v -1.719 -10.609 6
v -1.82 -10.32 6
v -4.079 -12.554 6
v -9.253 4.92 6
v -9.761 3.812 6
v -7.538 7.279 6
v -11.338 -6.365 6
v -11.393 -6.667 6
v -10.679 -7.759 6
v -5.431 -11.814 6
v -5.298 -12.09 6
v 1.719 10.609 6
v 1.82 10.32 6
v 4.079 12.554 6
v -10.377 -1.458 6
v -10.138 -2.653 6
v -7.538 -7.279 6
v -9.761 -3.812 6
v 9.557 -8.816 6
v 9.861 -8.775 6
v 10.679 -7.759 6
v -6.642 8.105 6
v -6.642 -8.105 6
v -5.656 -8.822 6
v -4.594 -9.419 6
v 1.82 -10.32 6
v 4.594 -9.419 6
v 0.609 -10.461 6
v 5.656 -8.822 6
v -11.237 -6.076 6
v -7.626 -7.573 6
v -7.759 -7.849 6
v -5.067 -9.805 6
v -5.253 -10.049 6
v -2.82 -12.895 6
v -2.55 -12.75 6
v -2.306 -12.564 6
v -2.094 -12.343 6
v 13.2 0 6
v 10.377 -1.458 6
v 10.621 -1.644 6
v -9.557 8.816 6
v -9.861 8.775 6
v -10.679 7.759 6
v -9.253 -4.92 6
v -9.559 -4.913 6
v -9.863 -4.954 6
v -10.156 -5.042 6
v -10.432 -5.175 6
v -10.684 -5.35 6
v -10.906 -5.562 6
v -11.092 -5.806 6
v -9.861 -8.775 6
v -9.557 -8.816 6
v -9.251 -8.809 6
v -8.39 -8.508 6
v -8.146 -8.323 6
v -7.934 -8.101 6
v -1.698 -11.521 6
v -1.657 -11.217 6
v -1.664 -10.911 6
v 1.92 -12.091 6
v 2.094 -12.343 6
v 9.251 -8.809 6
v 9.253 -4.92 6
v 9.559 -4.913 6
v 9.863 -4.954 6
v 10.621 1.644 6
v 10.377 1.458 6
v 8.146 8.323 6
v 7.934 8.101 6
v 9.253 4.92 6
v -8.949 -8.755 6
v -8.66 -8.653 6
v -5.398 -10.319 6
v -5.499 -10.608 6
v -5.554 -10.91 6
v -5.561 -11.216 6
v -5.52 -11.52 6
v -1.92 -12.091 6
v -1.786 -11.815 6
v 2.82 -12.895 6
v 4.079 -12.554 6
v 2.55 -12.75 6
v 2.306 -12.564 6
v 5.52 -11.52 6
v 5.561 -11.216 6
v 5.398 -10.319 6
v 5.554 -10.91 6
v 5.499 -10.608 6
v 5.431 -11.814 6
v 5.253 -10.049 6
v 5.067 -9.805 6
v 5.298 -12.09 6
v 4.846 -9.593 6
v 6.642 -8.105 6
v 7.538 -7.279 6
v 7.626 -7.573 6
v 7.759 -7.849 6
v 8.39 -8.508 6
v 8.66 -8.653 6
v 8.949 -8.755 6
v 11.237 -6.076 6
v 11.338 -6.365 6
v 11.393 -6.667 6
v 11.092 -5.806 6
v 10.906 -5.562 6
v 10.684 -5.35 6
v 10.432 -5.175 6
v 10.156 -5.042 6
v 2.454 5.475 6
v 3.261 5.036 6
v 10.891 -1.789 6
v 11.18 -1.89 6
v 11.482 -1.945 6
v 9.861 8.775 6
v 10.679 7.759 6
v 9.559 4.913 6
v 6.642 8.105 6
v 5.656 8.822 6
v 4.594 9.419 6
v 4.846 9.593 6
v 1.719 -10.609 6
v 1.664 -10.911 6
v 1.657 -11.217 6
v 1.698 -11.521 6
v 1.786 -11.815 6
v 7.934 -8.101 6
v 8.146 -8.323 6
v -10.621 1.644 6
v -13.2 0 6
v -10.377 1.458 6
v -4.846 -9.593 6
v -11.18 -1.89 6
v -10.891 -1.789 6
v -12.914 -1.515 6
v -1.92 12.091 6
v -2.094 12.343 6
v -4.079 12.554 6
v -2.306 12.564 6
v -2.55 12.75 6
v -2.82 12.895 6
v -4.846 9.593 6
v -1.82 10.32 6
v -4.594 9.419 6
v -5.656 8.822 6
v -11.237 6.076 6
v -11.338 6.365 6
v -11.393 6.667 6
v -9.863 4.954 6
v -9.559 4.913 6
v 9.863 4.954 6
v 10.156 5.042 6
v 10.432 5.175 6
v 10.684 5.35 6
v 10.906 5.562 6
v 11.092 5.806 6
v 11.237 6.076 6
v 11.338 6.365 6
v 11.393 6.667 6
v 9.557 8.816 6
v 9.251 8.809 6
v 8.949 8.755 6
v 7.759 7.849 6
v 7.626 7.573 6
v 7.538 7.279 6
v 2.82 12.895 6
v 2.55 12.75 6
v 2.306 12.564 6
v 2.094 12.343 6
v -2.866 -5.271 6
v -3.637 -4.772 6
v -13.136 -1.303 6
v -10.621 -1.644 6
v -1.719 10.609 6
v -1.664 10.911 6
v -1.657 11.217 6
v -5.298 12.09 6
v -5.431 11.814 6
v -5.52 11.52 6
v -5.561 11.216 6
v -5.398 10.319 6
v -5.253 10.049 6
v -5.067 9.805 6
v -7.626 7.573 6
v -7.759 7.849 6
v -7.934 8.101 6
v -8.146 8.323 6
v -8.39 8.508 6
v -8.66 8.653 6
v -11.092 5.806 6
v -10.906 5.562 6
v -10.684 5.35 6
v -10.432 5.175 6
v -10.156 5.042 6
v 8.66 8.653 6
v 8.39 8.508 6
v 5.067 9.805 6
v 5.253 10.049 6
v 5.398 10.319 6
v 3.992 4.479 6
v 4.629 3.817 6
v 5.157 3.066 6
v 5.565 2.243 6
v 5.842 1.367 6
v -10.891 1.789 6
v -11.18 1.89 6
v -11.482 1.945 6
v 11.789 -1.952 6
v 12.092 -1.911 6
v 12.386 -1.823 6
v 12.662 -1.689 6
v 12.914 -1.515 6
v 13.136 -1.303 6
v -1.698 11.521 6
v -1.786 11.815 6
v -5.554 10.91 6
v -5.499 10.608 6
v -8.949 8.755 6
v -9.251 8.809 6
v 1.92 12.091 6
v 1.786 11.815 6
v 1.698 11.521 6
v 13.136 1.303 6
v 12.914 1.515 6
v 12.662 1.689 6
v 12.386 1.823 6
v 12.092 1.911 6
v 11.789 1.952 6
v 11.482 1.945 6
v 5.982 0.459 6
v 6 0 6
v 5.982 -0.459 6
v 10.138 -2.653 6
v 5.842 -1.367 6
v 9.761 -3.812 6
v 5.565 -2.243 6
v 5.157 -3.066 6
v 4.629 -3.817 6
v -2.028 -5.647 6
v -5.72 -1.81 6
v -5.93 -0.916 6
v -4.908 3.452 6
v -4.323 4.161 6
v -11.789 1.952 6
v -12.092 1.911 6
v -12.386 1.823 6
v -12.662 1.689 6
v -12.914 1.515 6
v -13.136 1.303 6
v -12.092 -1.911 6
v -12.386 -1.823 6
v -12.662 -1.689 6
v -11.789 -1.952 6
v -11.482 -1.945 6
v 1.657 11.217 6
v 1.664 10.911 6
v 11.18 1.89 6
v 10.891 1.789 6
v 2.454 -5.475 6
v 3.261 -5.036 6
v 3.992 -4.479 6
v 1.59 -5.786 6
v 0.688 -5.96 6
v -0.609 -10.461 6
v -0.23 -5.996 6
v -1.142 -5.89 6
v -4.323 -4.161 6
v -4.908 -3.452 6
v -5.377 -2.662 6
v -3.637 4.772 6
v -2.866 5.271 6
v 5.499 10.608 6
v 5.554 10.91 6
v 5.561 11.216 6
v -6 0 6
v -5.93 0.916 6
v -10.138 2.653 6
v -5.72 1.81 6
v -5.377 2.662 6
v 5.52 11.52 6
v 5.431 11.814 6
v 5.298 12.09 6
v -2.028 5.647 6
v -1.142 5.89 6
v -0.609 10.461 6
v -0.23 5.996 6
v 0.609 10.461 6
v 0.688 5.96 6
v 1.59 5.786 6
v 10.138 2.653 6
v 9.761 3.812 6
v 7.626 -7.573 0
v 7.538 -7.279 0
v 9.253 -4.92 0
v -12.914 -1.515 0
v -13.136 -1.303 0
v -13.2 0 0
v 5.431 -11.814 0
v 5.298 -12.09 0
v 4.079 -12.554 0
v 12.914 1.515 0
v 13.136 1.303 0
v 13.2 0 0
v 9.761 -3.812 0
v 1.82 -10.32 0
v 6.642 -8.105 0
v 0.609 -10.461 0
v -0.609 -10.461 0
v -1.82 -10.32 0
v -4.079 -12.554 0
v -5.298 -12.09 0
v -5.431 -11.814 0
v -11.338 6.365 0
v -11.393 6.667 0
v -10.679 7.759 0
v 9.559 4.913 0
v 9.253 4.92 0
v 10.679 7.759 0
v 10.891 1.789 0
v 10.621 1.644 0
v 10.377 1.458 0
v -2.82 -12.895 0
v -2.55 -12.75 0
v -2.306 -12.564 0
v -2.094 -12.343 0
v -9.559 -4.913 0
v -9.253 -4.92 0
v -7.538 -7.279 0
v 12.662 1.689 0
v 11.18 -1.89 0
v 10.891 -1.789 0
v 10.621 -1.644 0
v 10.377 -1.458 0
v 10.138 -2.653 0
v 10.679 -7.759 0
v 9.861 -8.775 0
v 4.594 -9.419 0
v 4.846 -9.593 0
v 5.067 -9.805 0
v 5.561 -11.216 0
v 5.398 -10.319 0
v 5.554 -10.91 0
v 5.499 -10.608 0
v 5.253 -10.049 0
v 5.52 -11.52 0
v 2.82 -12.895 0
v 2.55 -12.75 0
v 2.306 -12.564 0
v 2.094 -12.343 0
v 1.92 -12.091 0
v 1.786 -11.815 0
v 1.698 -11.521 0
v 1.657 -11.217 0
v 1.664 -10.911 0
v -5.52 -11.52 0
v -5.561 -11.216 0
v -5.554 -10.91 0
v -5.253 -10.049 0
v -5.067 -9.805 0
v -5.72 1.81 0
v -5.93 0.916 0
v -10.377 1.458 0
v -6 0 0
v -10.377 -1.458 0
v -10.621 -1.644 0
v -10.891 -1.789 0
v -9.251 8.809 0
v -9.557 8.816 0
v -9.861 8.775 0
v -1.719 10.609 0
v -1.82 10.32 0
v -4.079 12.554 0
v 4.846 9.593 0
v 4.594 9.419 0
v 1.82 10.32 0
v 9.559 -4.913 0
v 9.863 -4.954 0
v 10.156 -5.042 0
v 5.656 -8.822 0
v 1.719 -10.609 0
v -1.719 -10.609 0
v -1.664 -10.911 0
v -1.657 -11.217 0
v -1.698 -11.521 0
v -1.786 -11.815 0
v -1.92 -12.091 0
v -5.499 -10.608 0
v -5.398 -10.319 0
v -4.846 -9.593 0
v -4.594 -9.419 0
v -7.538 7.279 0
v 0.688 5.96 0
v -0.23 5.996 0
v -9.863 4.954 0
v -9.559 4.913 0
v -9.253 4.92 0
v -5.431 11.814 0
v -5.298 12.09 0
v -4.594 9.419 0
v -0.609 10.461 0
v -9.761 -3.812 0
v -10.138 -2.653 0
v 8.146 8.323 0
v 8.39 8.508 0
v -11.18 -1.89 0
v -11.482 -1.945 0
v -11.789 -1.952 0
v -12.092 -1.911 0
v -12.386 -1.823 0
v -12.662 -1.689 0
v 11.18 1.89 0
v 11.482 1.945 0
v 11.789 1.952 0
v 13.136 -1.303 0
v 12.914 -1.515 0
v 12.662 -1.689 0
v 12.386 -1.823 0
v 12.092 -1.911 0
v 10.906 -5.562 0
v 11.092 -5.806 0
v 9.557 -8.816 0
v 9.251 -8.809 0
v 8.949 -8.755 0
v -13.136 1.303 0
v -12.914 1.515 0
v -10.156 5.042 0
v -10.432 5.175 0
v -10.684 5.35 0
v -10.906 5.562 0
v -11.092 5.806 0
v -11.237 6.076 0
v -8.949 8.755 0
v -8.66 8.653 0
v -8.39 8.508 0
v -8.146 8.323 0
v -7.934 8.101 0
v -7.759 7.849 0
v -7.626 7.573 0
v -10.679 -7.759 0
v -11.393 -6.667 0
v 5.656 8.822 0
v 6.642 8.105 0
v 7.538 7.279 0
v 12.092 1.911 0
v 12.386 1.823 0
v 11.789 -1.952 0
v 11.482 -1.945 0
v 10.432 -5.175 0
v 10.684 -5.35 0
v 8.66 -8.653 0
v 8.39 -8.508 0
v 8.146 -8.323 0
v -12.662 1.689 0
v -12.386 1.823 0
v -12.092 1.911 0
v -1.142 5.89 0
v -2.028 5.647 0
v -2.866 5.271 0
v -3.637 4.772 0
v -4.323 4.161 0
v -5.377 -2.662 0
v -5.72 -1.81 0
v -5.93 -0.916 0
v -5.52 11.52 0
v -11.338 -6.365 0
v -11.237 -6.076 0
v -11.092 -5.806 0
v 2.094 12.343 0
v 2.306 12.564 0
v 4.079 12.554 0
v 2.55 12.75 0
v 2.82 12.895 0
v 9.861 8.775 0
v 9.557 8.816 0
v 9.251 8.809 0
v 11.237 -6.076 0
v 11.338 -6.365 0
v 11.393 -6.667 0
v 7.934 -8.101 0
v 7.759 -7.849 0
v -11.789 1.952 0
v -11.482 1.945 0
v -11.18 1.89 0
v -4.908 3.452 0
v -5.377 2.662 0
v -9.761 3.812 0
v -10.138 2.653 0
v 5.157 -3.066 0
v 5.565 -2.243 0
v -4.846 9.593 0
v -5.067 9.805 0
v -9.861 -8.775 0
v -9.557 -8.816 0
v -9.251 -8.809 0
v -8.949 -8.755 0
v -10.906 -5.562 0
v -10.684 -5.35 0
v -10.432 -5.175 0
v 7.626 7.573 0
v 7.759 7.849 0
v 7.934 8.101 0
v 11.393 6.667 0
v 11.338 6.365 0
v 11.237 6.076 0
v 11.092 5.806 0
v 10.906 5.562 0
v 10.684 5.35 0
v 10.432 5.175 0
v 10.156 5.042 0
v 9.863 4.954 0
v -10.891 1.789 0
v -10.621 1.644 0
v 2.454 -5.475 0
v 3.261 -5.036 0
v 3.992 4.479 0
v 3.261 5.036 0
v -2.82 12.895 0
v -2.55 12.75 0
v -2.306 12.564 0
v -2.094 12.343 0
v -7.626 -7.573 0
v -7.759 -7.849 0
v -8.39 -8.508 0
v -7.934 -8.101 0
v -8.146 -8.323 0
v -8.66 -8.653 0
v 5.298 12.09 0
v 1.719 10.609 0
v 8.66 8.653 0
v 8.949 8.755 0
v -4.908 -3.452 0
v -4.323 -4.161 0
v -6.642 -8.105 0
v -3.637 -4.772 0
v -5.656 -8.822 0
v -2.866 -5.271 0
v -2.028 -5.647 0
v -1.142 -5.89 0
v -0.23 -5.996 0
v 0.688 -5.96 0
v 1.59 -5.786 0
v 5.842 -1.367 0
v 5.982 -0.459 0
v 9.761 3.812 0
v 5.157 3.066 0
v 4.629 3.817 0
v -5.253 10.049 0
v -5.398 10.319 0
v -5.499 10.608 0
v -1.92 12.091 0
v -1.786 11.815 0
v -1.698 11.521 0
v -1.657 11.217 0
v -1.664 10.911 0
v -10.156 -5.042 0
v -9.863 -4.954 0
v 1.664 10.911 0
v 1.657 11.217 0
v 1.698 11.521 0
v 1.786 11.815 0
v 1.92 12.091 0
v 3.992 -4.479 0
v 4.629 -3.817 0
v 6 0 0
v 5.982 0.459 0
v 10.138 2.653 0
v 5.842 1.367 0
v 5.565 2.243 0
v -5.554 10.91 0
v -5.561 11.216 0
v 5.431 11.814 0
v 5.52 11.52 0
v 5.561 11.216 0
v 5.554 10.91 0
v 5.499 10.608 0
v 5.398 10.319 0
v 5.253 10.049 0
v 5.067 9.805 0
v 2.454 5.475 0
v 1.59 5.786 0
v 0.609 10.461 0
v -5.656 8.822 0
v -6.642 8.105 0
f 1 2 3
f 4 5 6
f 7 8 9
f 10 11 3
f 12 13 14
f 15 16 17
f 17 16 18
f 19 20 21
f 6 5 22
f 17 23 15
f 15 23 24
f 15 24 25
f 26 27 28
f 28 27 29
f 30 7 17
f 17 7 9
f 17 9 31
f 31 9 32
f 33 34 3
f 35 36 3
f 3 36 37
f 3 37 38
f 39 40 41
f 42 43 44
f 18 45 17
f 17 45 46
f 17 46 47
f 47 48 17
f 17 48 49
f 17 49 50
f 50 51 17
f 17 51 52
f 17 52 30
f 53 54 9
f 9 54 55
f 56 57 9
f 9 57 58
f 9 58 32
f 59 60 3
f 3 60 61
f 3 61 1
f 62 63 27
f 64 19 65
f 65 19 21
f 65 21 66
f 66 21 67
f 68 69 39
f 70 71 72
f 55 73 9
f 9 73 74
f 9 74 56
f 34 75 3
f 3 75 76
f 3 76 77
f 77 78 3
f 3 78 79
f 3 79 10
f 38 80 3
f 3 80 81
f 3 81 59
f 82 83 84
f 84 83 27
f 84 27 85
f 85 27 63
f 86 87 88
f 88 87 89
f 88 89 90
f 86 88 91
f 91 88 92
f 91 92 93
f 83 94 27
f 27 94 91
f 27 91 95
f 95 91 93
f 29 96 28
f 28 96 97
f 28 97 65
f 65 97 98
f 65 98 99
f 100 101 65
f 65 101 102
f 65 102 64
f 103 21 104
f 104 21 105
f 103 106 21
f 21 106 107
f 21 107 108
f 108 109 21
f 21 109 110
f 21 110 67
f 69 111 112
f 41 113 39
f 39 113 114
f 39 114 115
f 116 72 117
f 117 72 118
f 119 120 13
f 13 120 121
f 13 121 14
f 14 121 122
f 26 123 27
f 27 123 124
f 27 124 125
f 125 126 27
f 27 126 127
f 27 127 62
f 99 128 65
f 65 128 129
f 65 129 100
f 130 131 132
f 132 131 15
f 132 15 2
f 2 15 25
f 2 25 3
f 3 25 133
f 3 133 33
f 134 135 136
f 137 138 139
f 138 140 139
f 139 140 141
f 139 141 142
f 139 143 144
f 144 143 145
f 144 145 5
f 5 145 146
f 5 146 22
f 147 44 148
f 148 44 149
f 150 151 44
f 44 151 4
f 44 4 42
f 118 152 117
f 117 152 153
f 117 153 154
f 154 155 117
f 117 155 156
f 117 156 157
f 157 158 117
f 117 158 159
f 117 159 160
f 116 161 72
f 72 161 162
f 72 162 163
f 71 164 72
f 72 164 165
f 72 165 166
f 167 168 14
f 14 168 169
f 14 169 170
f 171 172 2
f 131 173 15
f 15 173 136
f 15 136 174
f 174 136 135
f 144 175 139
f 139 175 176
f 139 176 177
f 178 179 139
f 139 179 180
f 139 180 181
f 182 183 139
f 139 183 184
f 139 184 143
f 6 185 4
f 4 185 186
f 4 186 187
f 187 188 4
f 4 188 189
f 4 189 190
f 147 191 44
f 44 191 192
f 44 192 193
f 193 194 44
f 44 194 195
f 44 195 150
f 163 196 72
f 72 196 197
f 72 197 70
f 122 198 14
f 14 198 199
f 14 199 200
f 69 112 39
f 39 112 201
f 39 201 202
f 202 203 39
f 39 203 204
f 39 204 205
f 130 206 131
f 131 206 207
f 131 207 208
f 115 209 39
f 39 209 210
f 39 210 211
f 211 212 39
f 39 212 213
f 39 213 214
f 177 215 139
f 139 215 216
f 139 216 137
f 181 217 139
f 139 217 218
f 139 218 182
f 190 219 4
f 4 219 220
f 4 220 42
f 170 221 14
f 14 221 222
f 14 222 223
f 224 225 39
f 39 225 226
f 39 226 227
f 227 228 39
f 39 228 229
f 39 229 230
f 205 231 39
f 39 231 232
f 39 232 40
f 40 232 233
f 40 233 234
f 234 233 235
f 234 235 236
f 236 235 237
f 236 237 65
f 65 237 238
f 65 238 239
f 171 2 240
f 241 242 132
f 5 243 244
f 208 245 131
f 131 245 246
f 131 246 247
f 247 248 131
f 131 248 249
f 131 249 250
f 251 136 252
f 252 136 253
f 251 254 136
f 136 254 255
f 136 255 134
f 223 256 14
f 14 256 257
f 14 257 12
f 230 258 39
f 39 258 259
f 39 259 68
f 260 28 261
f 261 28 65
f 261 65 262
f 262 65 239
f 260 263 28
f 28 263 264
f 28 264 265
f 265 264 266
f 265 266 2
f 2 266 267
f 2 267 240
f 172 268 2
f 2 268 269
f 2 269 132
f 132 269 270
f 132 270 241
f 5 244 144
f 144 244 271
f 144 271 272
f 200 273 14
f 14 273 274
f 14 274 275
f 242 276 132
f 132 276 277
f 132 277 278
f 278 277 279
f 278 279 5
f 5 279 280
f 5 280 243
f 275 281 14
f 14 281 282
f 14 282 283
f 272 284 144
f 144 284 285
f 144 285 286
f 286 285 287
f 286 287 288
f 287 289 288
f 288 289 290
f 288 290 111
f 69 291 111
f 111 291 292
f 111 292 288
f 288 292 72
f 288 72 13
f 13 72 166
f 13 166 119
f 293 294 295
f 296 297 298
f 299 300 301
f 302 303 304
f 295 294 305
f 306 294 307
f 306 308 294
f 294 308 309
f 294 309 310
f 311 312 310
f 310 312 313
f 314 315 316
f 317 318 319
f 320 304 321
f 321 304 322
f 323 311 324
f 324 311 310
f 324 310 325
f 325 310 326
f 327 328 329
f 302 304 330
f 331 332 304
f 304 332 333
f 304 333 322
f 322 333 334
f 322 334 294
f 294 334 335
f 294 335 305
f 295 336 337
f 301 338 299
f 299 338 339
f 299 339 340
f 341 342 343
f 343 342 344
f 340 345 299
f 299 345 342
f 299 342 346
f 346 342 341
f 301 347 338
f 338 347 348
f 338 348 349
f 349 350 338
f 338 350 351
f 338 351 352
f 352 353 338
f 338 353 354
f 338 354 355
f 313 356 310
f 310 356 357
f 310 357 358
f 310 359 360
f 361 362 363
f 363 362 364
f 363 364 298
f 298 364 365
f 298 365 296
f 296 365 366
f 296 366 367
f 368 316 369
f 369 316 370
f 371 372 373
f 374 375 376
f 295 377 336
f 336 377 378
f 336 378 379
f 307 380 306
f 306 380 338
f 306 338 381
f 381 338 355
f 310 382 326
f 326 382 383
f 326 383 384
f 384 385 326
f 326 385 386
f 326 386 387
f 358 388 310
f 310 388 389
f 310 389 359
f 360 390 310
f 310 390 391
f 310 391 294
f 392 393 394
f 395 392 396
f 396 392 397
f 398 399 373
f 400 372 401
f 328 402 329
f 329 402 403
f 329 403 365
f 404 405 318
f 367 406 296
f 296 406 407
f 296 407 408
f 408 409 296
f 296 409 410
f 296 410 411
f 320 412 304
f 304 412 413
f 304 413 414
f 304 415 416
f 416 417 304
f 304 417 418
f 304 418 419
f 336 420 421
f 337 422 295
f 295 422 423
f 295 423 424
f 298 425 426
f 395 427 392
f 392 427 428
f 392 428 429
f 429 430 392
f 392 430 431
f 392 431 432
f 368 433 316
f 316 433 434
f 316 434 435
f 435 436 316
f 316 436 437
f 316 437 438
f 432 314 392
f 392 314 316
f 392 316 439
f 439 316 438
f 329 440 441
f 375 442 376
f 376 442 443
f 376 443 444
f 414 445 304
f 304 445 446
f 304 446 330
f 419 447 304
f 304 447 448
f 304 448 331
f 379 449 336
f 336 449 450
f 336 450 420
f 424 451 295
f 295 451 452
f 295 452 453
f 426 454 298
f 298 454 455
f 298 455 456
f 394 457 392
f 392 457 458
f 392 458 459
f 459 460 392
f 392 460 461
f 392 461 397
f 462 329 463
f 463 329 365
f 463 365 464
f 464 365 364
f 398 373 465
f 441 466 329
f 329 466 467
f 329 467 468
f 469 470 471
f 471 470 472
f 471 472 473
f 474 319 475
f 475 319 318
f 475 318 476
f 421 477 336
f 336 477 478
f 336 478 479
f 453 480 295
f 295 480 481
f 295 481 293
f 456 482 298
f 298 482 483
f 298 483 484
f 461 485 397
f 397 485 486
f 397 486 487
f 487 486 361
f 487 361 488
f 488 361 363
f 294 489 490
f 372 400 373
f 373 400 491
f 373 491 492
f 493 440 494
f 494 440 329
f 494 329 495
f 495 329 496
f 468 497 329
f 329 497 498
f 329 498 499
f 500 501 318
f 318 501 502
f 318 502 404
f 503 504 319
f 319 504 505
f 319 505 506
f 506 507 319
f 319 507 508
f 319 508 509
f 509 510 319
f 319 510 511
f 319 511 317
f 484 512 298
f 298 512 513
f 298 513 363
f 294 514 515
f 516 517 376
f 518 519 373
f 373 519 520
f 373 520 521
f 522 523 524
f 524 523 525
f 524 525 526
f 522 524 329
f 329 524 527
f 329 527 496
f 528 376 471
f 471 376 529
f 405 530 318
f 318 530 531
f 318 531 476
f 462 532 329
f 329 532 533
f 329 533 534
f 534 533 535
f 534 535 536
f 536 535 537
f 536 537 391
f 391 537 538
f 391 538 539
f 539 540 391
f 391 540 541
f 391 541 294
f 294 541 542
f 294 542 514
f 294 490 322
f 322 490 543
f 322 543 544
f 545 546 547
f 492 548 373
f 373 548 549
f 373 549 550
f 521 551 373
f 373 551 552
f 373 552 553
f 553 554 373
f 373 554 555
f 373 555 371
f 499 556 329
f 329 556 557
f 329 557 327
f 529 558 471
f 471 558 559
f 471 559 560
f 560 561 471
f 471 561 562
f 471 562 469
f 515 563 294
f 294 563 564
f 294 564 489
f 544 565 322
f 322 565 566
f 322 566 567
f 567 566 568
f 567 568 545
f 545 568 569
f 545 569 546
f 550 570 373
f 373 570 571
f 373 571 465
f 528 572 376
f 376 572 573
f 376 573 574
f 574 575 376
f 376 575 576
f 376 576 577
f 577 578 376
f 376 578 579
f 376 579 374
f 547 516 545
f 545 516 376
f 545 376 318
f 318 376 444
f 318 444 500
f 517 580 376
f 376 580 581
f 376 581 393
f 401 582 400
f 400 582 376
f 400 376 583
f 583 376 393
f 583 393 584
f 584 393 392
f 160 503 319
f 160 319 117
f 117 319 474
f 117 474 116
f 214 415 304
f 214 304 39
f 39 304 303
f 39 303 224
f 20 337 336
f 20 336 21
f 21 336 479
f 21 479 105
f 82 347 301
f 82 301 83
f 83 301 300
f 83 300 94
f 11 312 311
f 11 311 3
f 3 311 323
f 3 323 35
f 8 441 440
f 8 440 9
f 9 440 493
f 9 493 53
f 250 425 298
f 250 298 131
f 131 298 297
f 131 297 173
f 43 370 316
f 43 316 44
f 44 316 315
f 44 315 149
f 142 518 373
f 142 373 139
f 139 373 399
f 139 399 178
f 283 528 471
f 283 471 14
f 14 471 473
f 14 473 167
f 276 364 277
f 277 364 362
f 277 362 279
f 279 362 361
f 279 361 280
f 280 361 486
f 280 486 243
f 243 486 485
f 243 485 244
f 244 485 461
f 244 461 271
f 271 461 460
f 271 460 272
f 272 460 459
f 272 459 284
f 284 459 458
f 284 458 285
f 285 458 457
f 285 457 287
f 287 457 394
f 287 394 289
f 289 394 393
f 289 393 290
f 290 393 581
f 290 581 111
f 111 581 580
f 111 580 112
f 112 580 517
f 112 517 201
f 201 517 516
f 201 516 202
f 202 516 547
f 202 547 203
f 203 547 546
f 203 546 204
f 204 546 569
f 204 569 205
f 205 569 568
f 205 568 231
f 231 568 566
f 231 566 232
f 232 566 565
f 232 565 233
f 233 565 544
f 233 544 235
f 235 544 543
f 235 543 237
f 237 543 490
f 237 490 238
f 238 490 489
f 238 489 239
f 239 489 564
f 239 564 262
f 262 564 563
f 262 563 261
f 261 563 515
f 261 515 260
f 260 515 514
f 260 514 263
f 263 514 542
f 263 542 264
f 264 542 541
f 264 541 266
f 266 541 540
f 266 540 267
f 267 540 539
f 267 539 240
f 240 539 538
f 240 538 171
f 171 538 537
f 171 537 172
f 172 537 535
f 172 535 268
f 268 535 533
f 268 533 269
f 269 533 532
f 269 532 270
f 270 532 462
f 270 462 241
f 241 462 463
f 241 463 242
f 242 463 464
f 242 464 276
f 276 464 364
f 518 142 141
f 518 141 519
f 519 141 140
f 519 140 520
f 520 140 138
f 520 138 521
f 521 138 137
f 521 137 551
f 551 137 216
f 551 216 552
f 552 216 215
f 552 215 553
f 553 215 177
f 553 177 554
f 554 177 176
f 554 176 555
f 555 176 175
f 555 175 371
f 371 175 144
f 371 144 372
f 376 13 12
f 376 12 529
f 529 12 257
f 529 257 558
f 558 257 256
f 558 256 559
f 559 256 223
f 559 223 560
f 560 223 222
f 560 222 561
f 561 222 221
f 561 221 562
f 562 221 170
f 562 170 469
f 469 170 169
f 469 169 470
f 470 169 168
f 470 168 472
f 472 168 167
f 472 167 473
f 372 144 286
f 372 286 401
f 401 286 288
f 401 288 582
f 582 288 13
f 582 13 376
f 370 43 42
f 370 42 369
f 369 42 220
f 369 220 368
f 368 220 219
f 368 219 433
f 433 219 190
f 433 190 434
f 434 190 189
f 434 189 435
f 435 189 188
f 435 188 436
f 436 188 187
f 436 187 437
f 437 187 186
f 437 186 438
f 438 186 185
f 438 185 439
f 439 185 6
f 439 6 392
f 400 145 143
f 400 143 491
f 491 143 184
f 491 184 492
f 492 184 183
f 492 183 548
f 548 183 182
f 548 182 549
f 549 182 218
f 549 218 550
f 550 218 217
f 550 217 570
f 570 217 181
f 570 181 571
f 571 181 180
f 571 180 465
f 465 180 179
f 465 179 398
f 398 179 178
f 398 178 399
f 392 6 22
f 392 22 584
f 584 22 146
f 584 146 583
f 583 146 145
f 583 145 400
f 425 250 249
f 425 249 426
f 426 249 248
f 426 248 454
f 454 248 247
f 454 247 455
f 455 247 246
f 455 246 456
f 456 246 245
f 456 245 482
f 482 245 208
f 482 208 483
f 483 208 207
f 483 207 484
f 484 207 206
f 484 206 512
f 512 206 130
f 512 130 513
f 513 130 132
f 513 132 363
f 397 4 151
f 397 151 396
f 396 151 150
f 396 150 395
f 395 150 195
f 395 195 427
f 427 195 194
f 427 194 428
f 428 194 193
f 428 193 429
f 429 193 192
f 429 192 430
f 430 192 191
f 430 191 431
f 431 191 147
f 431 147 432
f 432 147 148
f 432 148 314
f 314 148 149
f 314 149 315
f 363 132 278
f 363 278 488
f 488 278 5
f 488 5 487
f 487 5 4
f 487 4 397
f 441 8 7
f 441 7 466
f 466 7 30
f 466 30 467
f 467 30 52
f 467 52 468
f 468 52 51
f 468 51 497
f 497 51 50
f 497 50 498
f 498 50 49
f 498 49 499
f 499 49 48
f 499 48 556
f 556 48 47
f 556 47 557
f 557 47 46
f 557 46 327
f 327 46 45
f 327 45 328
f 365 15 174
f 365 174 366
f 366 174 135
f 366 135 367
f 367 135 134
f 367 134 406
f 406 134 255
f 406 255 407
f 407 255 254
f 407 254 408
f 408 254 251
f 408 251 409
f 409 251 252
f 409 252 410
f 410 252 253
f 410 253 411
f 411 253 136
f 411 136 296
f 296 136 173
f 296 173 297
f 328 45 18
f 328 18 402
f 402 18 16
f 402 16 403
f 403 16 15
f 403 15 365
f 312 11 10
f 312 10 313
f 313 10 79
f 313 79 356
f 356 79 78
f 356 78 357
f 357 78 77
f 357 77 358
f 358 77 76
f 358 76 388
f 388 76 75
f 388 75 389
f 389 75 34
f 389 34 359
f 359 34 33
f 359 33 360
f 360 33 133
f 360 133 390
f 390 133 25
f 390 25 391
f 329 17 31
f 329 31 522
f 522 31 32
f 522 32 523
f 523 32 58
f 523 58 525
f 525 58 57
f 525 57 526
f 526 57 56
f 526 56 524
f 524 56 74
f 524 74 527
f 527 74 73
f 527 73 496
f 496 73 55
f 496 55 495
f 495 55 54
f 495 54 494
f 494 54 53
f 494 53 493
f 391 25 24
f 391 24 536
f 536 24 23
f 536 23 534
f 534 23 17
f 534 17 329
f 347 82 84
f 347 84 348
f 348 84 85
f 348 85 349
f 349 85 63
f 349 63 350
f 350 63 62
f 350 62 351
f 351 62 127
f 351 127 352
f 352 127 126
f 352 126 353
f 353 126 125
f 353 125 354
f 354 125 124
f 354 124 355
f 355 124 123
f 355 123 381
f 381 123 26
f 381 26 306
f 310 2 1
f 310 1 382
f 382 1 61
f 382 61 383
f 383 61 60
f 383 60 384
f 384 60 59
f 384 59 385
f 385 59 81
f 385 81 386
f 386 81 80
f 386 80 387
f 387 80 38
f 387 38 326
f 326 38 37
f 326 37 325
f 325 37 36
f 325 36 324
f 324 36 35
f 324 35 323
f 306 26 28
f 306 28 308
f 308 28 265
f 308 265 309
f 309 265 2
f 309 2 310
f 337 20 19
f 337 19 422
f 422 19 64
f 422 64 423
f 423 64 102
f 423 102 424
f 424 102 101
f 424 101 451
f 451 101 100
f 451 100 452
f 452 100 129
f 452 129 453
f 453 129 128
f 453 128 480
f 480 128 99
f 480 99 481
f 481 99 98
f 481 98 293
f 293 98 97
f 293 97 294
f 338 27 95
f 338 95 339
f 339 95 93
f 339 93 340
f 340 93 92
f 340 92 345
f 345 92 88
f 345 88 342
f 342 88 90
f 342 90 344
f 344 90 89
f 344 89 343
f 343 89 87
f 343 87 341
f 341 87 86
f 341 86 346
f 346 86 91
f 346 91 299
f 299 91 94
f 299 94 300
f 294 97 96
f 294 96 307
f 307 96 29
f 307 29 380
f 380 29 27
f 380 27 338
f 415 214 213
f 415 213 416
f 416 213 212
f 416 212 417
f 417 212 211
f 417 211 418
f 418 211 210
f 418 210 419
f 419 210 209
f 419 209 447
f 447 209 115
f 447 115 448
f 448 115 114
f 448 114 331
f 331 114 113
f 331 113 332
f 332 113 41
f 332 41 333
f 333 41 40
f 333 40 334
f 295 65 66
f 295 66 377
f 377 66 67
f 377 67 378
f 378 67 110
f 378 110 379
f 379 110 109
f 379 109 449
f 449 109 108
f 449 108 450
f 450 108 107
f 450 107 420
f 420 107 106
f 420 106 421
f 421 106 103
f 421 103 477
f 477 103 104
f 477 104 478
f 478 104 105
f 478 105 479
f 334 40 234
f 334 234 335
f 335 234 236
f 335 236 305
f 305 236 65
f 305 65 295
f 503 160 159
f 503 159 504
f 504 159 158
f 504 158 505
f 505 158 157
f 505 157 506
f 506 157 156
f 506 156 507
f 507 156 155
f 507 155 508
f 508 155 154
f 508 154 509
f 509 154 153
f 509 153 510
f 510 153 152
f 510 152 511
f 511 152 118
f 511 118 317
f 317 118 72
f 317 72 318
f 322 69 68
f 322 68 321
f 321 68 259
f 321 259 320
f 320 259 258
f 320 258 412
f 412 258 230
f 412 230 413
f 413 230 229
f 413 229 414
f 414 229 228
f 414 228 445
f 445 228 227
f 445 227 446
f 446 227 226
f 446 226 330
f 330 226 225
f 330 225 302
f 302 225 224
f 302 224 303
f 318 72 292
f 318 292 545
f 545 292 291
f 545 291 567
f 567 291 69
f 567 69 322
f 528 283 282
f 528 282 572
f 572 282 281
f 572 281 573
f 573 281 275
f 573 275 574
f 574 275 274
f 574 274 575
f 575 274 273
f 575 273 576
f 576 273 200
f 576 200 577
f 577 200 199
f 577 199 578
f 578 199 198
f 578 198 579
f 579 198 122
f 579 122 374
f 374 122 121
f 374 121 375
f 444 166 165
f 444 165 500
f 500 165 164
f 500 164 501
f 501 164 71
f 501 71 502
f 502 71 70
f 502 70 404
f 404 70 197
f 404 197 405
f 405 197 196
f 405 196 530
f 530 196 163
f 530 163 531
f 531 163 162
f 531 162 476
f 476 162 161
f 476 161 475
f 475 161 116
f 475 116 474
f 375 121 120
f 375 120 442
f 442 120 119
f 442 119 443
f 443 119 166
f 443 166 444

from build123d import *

# Parameters (mm, degrees)
SKETCH1_R           = 13.2
SKETCH1_R_2         = 6
BOSS_EXTRUDE1_DEPTH = 6
CUT_EXTRUDE1_DEPTH  = 7
CIRPATTERN1_COUNT   = 10


with BuildPart() as part:
    # Sketch1 → Boss-Extrude1 (new body)
    with BuildSketch(Plane.XY):
        Circle(SKETCH1_R)
        Circle(SKETCH1_R_2, mode=Mode.SUBTRACT)
    extrude(amount=BOSS_EXTRUDE1_DEPTH)

    # Sketch2 → Cut-Extrude1 (cut, through all)
    with BuildSketch(Plane.XY.offset(6)):
        with BuildLine():
            ThreePointArc((-2.819851171, 12.895287487), (0, 13.2), (2.819851171, 12.895287487))
            ThreePointArc((2.819851171, 12.895287487), (1.786491669, 11.814750525), (1.819851171, 10.32))
            ThreePointArc((1.819851171, 10.32), (0, 10.479229852), (-1.819851171, 10.32))
            ThreePointArc((-1.819851171, 10.32), (-1.786491669, 11.814750525), (-2.819851171, 12.895287487))
        make_face()
    cut_extrude1 = extrude(amount=-CUT_EXTRUDE1_DEPTH, mode=Mode.SUBTRACT)

    # CirPattern1: Cut-Extrude1 ×10 about axis
    cirpattern1_axis = Axis((0, 0, 0), (0, 0, 1))
    for i in range(1, CIRPATTERN1_COUNT):
        add(cut_extrude1.rotate(cirpattern1_axis, i * 360 / CIRPATTERN1_COUNT), mode=Mode.SUBTRACT)


solid = part.part
